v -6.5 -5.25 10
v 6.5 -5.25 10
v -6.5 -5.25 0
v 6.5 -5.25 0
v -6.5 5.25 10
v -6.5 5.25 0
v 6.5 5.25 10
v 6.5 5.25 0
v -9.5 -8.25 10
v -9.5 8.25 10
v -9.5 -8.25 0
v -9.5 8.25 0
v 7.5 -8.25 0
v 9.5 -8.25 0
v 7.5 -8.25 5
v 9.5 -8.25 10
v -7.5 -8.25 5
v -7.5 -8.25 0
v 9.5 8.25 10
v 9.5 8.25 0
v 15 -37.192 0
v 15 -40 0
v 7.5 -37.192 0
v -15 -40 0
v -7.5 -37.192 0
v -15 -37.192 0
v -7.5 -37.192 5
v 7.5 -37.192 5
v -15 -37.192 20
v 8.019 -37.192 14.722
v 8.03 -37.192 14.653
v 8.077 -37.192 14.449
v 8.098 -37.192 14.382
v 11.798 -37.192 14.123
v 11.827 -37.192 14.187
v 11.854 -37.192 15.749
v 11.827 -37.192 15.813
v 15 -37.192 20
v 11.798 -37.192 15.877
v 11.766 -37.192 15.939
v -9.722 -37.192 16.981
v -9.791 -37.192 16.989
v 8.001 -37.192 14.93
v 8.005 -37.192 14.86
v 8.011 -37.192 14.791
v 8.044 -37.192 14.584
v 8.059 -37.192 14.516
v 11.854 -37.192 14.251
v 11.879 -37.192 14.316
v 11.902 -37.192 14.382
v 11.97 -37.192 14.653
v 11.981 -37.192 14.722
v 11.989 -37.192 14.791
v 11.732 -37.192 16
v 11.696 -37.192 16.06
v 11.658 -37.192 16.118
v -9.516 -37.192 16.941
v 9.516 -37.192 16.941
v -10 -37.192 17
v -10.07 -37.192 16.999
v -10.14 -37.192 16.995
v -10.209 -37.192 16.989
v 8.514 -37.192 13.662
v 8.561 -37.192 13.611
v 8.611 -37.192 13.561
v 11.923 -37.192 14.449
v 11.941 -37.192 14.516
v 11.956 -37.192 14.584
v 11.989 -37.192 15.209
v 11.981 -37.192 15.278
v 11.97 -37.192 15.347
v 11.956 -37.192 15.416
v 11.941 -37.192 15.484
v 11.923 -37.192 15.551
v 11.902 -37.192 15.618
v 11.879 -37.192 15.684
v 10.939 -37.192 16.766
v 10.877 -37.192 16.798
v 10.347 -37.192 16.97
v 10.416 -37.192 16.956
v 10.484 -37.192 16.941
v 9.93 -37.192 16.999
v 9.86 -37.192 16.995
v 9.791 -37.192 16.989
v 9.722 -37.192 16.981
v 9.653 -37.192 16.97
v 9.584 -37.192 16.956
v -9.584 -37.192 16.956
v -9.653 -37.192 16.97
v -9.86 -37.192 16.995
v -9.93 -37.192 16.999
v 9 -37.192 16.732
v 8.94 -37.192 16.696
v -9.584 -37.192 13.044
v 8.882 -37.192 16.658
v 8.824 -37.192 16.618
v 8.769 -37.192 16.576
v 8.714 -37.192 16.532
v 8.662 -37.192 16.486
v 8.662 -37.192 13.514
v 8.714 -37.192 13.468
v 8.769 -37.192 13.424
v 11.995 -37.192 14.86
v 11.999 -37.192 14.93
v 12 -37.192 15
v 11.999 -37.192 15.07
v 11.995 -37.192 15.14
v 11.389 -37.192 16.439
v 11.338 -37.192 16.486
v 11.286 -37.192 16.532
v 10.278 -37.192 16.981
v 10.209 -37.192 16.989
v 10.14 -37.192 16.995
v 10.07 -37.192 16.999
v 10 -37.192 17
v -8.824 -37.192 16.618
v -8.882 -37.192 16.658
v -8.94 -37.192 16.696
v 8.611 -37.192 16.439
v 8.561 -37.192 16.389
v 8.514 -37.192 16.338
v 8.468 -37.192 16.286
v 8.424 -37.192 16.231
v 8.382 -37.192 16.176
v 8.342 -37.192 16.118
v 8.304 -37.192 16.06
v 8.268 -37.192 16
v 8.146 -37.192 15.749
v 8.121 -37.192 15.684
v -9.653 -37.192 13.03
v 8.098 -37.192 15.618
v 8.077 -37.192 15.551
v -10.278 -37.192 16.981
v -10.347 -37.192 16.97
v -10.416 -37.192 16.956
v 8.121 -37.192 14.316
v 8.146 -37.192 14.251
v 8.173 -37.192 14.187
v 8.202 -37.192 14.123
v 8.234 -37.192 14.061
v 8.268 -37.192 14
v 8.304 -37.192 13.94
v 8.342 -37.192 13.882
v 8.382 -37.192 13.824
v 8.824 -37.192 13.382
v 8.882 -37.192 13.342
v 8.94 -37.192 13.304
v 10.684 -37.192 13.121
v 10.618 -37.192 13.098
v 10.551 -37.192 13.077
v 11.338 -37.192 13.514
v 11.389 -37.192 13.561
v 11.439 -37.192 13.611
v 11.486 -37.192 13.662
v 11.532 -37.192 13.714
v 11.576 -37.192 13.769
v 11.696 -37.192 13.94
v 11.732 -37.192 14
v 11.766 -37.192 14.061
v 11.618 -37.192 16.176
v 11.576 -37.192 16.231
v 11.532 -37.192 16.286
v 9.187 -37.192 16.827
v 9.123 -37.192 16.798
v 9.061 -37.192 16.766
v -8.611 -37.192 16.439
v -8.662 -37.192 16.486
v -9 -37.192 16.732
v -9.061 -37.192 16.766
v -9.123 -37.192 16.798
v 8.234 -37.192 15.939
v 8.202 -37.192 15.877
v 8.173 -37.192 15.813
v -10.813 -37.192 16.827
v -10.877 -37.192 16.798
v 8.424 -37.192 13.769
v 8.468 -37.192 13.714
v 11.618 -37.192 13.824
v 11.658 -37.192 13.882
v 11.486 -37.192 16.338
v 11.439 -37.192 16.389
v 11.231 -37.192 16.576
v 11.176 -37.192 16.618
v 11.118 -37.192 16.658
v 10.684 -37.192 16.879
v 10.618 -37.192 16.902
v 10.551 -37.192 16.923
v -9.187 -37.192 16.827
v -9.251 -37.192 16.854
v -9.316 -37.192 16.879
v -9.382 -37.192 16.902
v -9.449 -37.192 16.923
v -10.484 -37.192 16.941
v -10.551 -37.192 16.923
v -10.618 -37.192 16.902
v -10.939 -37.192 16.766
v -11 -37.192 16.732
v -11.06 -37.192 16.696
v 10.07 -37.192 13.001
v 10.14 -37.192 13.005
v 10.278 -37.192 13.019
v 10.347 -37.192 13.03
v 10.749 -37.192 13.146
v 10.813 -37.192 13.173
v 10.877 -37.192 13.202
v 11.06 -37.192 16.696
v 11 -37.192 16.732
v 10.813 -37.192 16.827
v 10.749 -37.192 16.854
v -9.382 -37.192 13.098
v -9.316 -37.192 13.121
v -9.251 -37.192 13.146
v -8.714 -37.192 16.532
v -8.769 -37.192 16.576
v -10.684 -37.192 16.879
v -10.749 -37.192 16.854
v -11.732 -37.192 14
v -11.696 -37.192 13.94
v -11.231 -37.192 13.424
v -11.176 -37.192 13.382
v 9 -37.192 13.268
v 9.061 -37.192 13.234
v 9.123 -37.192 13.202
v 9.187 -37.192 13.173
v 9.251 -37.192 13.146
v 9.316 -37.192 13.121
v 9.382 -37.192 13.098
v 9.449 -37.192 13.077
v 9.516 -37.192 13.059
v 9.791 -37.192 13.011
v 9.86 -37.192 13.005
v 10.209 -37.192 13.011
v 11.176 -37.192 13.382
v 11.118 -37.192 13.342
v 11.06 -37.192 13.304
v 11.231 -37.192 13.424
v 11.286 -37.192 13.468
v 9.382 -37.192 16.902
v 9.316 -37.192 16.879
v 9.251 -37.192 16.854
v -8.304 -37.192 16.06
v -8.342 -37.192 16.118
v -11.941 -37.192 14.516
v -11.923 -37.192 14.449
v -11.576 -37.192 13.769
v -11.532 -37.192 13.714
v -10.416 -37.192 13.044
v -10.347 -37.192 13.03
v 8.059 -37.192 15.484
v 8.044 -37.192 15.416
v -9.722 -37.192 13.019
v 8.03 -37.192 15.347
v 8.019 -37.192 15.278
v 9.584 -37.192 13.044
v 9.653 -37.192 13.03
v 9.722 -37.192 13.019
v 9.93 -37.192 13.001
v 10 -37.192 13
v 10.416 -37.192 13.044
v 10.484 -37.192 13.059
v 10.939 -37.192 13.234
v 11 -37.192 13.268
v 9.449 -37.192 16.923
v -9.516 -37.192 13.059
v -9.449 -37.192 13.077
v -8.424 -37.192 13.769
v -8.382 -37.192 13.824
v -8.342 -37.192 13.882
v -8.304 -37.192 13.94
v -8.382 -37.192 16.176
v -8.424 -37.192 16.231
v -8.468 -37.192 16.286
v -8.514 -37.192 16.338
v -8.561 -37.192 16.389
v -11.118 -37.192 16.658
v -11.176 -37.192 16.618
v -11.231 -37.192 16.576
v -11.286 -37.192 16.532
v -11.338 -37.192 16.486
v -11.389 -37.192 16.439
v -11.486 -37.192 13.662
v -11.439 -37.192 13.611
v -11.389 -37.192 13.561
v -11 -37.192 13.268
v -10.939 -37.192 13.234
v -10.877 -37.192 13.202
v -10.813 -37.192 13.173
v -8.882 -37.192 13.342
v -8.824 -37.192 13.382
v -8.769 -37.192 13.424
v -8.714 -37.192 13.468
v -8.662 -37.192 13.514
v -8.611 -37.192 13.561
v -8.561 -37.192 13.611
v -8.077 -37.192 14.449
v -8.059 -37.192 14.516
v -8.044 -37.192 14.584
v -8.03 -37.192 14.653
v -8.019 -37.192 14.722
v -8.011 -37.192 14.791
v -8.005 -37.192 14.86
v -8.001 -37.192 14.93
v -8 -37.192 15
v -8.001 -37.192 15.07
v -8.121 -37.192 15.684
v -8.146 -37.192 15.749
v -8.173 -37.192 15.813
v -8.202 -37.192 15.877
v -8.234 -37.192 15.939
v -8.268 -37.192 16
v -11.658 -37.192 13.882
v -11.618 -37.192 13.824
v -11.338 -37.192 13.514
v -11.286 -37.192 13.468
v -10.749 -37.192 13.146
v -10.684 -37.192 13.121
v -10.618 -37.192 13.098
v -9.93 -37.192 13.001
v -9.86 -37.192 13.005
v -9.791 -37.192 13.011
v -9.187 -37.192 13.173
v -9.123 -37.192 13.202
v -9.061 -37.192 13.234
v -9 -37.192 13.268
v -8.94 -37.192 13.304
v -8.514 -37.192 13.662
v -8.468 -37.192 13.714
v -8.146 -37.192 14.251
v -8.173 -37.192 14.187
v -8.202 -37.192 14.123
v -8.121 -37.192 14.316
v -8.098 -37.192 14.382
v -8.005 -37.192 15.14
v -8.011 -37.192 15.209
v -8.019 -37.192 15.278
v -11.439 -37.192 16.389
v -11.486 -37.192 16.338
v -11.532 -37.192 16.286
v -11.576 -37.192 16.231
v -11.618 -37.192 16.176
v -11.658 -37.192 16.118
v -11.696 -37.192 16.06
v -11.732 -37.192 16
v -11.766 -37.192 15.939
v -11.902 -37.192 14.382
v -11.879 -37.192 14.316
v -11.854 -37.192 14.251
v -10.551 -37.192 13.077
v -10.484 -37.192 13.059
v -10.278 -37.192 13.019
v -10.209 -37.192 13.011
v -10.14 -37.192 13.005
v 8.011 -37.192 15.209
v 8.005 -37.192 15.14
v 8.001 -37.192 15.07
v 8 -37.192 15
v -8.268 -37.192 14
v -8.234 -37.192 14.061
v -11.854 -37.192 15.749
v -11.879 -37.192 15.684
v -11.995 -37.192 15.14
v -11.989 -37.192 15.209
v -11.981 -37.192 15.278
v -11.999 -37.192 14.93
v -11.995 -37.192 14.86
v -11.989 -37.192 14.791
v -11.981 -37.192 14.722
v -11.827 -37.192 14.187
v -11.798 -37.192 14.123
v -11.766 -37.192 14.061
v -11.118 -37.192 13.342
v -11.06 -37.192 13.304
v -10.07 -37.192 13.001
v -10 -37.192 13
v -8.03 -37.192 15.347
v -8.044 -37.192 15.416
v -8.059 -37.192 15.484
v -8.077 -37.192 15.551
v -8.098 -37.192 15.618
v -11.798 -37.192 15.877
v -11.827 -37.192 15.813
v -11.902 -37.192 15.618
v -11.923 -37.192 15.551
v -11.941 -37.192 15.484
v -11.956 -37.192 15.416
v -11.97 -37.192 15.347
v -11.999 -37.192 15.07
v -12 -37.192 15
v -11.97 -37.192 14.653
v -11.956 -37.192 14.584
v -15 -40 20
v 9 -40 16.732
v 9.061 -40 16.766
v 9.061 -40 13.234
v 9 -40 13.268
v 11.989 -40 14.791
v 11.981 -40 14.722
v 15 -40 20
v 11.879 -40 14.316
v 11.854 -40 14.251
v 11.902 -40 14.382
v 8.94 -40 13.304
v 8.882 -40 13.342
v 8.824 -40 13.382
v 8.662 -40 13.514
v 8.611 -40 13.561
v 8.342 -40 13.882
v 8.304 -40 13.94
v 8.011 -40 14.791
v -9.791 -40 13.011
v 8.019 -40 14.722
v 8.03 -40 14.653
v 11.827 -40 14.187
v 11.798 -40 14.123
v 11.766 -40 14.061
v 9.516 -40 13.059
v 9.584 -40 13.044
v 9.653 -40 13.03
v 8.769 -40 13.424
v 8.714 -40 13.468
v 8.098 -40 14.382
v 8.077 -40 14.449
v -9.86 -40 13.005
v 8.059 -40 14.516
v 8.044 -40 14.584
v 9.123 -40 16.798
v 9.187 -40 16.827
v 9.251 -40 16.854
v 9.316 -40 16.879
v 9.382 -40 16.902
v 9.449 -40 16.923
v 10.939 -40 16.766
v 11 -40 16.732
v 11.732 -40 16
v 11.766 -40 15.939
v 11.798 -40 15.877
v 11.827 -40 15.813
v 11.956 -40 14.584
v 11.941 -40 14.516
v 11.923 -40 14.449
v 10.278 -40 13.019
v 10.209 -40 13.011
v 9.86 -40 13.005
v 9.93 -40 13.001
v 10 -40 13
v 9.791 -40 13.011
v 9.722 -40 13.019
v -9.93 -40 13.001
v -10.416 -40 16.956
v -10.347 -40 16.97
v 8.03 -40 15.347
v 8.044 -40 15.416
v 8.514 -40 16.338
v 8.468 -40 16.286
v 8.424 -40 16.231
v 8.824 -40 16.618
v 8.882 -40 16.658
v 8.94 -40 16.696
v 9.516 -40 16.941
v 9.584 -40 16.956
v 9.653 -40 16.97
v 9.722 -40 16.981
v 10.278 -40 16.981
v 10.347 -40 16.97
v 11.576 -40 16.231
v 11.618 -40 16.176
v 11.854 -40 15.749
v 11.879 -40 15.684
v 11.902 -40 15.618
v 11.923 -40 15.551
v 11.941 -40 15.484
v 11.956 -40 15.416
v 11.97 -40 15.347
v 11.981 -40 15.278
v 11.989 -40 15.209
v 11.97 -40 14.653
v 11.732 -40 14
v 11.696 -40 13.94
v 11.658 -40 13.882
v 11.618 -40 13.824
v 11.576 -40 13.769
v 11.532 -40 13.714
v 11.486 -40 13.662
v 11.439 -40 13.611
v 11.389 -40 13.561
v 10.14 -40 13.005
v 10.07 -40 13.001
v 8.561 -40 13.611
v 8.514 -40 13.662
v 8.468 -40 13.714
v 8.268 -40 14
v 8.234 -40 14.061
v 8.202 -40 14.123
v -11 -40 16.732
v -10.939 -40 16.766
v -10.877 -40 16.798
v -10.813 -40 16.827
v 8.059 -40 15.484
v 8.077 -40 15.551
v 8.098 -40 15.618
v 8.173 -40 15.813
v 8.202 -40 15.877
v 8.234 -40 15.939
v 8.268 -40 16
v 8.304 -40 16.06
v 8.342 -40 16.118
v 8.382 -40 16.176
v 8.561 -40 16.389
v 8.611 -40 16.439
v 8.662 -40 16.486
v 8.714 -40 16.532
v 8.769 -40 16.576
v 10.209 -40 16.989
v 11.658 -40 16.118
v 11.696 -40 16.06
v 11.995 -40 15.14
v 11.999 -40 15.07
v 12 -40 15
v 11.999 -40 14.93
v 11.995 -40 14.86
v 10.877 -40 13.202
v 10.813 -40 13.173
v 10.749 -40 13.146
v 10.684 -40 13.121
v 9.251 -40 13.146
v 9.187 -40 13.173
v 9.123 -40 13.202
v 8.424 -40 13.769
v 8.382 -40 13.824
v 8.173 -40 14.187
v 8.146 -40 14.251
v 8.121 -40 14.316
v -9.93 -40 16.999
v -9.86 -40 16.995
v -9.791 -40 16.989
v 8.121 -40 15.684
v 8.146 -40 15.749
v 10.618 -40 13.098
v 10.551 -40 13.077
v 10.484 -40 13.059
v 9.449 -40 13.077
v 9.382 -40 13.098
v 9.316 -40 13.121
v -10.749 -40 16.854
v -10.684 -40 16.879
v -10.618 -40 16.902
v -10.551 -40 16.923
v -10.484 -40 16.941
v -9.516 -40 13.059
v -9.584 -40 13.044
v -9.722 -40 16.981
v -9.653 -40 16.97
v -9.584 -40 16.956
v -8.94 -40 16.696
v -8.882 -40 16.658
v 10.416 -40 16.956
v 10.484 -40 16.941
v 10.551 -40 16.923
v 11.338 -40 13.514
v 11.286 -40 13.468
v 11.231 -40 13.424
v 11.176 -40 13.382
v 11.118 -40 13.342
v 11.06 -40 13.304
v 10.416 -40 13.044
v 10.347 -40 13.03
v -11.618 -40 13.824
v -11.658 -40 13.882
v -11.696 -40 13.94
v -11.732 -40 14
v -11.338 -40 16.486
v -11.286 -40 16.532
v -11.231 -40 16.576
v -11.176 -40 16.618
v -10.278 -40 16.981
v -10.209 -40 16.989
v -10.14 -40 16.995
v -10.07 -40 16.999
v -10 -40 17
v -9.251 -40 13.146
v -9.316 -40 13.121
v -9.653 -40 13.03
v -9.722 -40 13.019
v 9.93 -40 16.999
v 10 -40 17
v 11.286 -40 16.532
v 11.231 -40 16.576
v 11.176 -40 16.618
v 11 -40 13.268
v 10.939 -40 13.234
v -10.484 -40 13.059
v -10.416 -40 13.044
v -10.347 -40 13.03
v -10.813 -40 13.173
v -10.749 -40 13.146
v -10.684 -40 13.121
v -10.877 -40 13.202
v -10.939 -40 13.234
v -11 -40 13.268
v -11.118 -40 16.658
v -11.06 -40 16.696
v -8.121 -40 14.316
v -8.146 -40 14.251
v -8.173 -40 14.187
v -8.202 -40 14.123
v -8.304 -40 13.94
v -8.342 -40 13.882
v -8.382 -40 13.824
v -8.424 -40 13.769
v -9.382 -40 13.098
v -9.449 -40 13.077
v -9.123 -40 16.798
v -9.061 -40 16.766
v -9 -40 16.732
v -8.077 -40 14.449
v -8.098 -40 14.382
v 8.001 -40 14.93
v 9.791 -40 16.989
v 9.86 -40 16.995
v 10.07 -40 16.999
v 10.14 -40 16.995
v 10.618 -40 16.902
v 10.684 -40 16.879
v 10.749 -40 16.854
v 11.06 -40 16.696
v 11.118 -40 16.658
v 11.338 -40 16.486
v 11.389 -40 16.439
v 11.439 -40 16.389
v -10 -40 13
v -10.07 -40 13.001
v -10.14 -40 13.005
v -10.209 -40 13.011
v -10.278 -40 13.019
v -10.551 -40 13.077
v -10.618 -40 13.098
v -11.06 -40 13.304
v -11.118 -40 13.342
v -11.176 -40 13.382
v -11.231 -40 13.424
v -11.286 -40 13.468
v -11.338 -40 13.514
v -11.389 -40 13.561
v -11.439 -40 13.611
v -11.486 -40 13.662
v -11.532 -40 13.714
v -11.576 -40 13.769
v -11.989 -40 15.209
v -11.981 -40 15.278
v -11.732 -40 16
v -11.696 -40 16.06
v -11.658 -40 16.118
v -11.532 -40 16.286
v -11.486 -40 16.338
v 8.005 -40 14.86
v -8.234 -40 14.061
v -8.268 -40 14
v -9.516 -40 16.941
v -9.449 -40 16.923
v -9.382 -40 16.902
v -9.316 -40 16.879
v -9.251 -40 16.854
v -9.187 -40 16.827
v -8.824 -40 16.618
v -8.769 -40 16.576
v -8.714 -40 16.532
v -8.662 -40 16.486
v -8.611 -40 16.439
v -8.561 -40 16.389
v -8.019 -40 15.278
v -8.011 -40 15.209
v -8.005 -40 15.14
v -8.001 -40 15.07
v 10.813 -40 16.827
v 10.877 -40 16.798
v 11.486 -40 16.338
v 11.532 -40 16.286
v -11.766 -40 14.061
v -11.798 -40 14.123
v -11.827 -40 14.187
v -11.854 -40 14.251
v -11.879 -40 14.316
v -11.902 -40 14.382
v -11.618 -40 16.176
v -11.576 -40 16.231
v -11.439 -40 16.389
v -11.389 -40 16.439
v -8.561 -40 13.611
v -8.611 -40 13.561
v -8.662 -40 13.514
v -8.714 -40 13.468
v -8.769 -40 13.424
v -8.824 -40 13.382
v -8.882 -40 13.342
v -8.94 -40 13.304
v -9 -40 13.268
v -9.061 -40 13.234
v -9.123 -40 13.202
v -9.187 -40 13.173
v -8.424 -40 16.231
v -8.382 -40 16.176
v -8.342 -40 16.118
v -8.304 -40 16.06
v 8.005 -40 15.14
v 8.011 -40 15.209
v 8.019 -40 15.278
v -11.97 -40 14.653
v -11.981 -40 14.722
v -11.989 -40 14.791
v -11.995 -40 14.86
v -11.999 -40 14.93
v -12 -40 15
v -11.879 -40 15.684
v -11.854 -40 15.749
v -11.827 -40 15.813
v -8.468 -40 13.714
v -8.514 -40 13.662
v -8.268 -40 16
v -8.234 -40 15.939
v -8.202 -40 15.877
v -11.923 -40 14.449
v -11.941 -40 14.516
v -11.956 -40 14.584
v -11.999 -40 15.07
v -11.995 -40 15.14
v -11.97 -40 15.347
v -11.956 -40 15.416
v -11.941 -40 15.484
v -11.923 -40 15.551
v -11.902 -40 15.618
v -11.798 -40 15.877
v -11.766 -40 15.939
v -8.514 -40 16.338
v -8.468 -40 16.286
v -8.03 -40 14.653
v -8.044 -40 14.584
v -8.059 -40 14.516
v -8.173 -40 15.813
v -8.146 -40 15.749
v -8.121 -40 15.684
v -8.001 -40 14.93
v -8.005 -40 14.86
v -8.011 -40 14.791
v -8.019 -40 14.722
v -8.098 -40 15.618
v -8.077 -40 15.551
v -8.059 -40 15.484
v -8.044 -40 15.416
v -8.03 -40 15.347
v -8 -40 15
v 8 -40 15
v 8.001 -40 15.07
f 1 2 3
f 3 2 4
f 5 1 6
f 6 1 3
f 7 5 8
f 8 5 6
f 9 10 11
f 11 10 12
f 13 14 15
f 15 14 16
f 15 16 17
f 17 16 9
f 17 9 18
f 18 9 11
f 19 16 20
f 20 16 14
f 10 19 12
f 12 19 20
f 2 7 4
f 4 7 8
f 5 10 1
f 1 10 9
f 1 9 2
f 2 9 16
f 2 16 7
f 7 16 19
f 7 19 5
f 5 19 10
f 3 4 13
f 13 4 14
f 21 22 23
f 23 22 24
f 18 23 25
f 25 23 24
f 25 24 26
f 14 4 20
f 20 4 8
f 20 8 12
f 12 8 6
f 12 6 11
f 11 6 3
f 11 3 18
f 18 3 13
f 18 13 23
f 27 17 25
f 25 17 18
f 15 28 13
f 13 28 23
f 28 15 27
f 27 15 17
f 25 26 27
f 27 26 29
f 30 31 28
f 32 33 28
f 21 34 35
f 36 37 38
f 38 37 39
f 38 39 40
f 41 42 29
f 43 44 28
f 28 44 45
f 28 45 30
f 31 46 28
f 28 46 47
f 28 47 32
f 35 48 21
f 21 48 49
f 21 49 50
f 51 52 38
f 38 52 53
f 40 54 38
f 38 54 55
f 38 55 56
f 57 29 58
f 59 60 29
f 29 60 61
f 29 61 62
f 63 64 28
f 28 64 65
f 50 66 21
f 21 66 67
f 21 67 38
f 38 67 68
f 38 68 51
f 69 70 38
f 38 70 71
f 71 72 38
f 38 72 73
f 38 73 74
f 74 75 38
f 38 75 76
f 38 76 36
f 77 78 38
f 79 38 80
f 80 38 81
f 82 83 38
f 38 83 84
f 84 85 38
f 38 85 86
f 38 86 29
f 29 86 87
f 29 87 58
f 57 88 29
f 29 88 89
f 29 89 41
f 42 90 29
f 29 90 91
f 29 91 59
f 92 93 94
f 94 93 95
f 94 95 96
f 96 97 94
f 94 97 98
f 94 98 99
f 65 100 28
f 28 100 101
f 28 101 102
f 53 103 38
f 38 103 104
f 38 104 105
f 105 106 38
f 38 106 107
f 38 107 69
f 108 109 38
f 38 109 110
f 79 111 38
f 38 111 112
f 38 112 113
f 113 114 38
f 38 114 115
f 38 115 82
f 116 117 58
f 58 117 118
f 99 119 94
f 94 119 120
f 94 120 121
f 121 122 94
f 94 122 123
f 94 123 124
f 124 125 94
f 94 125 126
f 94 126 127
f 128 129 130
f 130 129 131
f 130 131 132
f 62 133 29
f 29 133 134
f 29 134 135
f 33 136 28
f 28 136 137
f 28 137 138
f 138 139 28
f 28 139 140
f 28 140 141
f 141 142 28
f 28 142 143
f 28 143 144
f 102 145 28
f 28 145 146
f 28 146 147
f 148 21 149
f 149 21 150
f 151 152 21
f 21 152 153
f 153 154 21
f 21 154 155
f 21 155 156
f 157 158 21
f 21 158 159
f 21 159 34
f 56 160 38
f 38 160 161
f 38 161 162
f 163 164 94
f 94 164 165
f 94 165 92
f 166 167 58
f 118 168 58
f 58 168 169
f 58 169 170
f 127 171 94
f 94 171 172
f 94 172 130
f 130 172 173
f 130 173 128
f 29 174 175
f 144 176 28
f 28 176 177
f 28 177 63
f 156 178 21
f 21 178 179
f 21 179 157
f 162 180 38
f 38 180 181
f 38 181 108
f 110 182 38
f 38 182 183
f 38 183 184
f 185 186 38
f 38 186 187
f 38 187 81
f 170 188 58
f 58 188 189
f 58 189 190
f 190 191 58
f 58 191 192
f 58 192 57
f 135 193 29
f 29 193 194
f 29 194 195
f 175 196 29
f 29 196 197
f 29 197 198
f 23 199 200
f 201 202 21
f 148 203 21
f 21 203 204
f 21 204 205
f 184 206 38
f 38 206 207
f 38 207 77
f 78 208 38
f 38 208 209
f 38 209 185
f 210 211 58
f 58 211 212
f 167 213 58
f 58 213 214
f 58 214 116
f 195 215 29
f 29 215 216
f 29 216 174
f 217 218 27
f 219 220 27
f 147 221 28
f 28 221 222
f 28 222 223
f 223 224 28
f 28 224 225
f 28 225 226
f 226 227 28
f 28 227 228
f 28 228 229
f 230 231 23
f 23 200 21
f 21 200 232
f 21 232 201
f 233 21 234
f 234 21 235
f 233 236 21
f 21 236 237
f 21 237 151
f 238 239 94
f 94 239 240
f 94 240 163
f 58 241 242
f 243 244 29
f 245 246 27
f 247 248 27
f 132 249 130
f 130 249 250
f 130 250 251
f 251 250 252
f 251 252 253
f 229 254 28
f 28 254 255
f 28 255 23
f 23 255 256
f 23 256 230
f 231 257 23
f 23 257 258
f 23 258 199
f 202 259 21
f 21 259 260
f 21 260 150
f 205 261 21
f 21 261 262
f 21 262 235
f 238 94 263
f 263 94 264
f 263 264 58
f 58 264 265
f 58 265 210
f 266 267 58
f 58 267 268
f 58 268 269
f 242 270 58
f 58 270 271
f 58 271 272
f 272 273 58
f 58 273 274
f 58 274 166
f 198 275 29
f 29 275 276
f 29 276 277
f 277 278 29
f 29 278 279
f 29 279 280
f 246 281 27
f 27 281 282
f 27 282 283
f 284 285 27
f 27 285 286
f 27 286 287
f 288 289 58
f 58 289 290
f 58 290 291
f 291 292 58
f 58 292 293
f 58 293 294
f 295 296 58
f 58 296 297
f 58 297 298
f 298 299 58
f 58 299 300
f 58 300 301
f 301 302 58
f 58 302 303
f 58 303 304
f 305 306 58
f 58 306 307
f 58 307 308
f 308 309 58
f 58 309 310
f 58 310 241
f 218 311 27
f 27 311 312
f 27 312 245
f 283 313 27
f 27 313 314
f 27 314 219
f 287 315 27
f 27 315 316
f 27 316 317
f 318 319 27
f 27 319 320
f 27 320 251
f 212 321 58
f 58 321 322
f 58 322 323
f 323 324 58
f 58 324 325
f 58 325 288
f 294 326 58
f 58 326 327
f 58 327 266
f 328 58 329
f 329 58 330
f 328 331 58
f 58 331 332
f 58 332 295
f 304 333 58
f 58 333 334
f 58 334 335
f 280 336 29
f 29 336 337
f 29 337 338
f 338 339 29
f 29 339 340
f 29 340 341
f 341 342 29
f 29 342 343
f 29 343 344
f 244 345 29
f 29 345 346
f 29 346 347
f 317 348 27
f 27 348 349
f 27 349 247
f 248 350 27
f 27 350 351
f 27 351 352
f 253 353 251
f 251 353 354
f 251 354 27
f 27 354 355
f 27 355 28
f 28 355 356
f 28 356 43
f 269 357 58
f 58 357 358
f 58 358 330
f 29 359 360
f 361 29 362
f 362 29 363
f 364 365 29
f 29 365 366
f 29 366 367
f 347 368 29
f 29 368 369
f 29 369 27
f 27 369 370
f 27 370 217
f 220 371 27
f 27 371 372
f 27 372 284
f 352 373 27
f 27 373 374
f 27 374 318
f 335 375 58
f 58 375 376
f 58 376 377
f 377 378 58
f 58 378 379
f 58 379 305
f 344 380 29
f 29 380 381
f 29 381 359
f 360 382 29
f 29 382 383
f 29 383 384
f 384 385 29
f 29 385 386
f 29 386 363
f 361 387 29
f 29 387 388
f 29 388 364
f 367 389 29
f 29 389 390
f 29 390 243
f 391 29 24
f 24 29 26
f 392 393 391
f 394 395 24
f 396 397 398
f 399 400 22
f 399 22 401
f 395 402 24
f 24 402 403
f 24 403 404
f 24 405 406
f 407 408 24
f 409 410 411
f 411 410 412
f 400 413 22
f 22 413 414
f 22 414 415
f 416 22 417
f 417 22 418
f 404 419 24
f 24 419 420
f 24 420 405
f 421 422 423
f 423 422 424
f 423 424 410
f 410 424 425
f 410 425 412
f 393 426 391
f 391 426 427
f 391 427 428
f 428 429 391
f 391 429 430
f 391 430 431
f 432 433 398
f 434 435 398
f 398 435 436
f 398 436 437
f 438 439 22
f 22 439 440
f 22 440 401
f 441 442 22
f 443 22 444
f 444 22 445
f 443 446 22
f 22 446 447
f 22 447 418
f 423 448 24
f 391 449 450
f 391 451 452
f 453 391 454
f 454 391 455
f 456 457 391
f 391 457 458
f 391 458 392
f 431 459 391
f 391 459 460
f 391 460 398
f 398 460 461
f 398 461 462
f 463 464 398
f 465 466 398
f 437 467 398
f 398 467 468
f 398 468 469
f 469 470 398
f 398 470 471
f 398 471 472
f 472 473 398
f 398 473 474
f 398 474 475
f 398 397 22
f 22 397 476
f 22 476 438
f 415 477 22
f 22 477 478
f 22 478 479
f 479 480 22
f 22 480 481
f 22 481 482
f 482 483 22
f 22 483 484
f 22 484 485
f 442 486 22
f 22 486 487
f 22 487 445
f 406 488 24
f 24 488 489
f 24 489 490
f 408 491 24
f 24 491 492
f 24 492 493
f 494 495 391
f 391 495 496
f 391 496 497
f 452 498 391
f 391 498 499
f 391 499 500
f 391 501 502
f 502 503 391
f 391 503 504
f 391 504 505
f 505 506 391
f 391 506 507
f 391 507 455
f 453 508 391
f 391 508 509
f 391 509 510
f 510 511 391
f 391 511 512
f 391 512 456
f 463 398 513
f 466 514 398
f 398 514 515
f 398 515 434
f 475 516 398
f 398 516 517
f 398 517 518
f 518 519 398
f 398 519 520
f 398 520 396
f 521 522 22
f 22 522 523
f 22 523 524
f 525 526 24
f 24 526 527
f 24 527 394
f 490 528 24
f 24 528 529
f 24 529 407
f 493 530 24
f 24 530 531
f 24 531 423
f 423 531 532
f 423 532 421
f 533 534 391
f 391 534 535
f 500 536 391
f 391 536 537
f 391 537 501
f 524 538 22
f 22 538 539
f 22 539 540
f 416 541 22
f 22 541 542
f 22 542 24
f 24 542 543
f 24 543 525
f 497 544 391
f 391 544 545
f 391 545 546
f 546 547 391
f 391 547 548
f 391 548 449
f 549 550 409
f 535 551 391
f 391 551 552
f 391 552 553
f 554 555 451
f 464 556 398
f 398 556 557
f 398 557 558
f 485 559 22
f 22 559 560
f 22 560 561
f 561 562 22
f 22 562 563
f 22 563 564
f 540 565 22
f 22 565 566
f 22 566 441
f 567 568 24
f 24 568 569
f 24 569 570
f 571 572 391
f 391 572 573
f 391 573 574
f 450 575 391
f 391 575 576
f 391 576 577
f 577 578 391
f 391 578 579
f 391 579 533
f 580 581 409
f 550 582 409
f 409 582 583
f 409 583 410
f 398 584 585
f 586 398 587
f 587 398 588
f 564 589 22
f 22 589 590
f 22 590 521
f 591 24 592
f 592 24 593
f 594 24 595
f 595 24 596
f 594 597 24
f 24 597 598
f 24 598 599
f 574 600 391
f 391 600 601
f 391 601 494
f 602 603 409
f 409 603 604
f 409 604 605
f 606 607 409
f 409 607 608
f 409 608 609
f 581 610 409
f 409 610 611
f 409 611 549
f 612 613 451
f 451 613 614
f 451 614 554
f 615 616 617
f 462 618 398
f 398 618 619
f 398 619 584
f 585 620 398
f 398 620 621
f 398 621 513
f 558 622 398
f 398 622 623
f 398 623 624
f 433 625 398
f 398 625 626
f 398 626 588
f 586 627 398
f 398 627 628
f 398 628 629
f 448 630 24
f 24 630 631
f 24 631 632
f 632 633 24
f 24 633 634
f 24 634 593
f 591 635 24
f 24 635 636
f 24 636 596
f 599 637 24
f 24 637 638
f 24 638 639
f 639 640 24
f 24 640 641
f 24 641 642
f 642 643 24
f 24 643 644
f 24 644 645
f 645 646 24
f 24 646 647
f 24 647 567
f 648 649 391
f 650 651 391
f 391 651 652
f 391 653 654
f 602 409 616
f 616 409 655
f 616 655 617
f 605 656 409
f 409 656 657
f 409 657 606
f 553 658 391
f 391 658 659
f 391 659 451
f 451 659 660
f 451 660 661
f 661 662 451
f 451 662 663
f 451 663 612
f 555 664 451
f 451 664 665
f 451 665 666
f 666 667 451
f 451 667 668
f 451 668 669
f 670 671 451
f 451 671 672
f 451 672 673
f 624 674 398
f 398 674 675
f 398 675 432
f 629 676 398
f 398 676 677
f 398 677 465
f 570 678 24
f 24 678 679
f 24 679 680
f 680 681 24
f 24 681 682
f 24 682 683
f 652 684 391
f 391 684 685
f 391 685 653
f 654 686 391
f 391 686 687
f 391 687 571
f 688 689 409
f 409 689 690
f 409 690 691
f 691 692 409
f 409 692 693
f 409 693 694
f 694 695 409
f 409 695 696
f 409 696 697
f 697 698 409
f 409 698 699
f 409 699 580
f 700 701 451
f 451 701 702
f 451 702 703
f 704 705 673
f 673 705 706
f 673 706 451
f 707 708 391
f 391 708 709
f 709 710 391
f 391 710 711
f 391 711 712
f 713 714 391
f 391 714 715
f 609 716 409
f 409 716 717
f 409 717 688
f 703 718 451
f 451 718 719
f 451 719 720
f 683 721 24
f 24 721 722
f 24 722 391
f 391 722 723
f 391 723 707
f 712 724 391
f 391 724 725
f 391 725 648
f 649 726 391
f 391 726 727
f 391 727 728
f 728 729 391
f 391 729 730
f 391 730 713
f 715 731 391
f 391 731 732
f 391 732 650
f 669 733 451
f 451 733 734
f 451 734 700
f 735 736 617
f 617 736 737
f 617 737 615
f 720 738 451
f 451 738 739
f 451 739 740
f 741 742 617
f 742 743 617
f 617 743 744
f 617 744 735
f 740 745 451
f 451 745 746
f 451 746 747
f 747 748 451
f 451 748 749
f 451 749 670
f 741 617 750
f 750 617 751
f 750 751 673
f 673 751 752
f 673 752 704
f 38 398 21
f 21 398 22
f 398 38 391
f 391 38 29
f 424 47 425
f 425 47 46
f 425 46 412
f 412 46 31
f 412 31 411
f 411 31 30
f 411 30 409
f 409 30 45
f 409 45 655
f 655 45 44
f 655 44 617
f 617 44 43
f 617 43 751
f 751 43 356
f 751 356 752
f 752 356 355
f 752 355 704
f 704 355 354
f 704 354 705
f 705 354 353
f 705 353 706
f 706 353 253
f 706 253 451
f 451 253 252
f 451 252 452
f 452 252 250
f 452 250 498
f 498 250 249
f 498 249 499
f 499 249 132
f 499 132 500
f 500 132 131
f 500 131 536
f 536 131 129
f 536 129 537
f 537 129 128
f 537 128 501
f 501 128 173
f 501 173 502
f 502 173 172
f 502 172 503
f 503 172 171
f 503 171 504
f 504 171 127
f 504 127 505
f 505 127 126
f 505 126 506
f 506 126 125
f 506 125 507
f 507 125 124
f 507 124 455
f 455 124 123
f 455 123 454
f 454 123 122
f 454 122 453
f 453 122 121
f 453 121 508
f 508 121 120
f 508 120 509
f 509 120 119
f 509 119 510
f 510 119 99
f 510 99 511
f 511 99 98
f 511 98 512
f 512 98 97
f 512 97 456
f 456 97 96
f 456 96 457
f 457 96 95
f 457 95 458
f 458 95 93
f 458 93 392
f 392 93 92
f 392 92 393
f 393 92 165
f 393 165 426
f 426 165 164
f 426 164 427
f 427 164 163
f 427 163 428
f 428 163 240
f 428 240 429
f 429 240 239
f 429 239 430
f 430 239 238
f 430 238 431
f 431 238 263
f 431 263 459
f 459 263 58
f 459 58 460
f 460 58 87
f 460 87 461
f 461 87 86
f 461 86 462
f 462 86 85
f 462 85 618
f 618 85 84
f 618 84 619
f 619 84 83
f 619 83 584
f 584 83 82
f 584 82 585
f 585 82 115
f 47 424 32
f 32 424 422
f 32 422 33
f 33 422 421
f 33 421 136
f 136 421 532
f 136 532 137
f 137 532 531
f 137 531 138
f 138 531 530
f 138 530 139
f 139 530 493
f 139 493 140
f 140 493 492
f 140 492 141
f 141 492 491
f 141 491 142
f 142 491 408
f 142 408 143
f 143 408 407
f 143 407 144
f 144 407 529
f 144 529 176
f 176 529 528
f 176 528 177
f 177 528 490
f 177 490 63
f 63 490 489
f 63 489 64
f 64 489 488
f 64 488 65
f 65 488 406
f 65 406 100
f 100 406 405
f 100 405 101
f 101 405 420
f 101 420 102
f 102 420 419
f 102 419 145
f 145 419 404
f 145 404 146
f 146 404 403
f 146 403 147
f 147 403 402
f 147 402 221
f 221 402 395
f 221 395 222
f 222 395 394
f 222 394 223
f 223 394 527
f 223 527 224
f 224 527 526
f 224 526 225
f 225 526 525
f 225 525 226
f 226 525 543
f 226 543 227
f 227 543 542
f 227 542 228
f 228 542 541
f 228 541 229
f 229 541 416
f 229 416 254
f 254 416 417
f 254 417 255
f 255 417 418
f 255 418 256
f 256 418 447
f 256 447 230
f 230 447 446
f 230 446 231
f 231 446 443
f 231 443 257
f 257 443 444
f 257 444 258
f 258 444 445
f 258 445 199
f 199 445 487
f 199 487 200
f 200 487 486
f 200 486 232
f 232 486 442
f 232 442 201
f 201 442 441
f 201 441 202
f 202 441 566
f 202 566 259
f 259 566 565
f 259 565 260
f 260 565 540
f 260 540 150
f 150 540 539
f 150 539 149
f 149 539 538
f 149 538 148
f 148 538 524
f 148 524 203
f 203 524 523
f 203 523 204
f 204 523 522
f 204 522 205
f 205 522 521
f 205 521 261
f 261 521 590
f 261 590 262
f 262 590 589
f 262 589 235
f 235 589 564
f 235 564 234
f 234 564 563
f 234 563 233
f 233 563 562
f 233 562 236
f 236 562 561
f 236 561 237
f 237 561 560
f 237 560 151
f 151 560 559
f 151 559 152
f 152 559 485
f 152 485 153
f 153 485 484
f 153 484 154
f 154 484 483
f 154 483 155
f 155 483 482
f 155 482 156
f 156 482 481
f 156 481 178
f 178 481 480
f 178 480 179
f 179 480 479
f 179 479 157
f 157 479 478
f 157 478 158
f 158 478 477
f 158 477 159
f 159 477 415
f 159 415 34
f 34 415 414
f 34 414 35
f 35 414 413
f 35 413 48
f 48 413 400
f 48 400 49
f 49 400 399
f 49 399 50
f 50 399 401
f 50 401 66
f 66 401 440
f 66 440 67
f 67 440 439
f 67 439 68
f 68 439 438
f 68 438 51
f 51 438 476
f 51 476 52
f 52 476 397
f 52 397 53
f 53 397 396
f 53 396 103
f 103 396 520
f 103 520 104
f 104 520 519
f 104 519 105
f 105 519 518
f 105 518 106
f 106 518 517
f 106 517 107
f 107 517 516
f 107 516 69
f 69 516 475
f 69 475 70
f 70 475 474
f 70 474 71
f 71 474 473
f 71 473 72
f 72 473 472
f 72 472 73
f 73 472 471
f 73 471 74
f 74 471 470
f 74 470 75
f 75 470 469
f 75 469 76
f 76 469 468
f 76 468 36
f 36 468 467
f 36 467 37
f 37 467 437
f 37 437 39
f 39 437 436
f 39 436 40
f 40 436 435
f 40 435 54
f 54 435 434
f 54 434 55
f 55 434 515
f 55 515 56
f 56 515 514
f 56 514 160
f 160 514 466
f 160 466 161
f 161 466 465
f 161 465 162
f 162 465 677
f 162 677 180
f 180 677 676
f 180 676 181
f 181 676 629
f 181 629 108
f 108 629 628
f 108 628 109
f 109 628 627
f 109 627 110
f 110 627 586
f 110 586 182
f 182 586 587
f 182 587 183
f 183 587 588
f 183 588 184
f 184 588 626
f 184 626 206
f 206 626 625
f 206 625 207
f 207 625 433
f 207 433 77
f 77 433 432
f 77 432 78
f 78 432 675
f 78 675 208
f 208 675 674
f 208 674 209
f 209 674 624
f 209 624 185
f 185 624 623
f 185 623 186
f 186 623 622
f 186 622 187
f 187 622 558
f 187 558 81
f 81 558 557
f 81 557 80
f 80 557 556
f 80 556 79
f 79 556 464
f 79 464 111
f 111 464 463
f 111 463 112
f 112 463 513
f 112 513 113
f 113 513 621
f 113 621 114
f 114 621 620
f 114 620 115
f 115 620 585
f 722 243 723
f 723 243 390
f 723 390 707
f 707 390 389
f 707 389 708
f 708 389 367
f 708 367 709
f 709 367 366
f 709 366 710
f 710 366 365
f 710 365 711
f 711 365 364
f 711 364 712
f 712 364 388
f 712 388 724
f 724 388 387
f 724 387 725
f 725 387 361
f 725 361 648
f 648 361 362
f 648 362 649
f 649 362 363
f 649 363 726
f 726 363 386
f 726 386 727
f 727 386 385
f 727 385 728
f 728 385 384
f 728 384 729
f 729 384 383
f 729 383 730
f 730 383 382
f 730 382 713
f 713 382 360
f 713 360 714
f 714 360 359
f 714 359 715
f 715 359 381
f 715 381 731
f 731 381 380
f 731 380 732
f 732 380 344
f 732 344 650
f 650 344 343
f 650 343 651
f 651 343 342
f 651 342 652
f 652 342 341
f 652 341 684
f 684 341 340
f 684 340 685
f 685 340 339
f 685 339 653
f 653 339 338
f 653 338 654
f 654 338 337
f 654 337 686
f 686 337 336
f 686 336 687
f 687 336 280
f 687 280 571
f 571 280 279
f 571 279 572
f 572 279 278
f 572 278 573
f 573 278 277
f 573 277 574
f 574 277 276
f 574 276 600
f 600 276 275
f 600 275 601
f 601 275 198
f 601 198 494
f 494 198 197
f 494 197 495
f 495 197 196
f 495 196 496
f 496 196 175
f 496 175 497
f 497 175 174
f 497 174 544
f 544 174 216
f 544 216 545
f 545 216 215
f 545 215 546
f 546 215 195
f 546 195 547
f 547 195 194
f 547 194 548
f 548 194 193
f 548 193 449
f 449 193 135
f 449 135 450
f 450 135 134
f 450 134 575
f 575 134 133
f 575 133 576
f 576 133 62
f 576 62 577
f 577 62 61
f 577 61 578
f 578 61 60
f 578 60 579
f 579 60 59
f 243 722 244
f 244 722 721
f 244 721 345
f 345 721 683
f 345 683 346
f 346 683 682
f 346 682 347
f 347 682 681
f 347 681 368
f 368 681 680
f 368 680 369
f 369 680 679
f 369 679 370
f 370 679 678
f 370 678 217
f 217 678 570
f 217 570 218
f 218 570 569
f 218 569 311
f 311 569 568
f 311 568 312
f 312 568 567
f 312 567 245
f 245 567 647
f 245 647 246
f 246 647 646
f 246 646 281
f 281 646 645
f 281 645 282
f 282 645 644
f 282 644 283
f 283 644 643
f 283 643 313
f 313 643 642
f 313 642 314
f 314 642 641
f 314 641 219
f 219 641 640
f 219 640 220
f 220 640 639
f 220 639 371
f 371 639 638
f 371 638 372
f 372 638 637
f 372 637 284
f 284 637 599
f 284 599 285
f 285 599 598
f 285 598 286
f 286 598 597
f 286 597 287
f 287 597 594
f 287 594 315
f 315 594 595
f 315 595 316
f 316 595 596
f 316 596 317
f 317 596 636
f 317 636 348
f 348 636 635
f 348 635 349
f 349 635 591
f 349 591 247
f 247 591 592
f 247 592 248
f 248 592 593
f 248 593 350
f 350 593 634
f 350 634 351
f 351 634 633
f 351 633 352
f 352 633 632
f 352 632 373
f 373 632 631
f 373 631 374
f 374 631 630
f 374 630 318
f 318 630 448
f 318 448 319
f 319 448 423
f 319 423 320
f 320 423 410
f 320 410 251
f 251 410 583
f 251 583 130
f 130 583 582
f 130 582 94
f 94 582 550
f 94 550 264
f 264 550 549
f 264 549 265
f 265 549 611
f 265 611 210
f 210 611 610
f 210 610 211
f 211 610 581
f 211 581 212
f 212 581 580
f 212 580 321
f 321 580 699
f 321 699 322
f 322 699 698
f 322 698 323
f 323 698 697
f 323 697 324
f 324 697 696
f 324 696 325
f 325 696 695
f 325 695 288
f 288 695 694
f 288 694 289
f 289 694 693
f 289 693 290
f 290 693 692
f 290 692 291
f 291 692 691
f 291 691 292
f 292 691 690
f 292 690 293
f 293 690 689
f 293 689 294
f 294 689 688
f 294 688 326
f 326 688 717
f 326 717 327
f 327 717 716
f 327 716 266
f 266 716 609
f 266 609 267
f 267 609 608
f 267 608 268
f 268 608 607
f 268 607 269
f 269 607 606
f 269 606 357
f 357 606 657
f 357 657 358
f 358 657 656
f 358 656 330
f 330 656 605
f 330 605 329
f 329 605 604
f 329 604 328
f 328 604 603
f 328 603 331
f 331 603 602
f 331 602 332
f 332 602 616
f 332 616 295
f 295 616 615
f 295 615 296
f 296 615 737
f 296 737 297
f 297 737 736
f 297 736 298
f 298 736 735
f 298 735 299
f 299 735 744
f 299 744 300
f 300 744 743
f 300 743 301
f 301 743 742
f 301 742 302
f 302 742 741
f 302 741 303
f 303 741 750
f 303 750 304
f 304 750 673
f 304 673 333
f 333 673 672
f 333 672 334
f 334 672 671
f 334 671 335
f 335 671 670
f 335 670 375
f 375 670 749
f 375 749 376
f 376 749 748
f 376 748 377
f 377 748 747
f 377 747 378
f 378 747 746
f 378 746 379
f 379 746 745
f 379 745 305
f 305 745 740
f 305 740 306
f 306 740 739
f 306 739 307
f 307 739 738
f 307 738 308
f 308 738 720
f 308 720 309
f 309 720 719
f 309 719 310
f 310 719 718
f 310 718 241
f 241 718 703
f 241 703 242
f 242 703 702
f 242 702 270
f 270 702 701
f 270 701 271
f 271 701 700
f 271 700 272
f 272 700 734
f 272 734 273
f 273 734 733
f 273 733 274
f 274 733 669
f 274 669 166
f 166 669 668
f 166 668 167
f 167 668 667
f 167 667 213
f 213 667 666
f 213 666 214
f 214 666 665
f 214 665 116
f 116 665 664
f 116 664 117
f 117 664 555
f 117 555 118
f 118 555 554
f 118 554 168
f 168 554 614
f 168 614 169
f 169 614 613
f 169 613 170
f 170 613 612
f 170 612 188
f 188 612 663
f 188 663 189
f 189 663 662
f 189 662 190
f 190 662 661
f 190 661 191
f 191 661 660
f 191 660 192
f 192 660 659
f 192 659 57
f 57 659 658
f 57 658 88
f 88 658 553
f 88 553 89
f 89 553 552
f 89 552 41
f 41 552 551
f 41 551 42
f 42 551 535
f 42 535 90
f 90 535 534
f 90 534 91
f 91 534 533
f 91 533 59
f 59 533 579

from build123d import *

# Parameters (mm, degrees)
SKETCH1_W           = 19
SKETCH1_H           = 16.5
SKETCH1_W_2         = 13
SKETCH1_H_2         = 10.5
BOSS_EXTRUDE1_DEPTH = 10
SKETCH1_3_W         = 15
SKETCH1_3_H         = 28.942025954
BOSS_EXTRUDE2_DEPTH = 5
SKETCH1_4_W         = 30
SKETCH1_4_H         = 2.807974046
BOSS_EXTRUDE3_DEPTH = 20
SKETCH2_R           = 2
CUT_EXTRUDE1_DEPTH  = 20


with BuildPart() as part:
    # Sketch1 → Boss-Extrude1 (new body)
    with BuildSketch(Plane.XY):
        Rectangle(SKETCH1_W, SKETCH1_H)
        Rectangle(SKETCH1_W_2, SKETCH1_H_2, mode=Mode.SUBTRACT)
    extrude(amount=BOSS_EXTRUDE1_DEPTH)

    # Sketch1<3> → Boss-Extrude2 (add)
    with BuildSketch(Plane.XY):
        with Locations((0, -22.721012977)):
            Rectangle(SKETCH1_3_W, SKETCH1_3_H)
    extrude(amount=BOSS_EXTRUDE2_DEPTH)

    # Sketch1<4> → Boss-Extrude3 (add)
    with BuildSketch(Plane.XY):
        with Locations((0, -38.596012977)):
            Rectangle(SKETCH1_4_W, SKETCH1_4_H)
    extrude(amount=BOSS_EXTRUDE3_DEPTH)

    # Sketch2 → Cut-Extrude1 (cut)
    with BuildSketch(Plane(origin=(0, -37.192025954, 0), x_dir=(1, 0, 0), z_dir=(0, 1, 0))):
        with Locations((-10, -15)):
            Circle(SKETCH2_R)
        with Locations((10, -15)):
            Circle(SKETCH2_R)
    extrude(amount=-CUT_EXTRUDE1_DEPTH, mode=Mode.SUBTRACT)


solid = part.part
